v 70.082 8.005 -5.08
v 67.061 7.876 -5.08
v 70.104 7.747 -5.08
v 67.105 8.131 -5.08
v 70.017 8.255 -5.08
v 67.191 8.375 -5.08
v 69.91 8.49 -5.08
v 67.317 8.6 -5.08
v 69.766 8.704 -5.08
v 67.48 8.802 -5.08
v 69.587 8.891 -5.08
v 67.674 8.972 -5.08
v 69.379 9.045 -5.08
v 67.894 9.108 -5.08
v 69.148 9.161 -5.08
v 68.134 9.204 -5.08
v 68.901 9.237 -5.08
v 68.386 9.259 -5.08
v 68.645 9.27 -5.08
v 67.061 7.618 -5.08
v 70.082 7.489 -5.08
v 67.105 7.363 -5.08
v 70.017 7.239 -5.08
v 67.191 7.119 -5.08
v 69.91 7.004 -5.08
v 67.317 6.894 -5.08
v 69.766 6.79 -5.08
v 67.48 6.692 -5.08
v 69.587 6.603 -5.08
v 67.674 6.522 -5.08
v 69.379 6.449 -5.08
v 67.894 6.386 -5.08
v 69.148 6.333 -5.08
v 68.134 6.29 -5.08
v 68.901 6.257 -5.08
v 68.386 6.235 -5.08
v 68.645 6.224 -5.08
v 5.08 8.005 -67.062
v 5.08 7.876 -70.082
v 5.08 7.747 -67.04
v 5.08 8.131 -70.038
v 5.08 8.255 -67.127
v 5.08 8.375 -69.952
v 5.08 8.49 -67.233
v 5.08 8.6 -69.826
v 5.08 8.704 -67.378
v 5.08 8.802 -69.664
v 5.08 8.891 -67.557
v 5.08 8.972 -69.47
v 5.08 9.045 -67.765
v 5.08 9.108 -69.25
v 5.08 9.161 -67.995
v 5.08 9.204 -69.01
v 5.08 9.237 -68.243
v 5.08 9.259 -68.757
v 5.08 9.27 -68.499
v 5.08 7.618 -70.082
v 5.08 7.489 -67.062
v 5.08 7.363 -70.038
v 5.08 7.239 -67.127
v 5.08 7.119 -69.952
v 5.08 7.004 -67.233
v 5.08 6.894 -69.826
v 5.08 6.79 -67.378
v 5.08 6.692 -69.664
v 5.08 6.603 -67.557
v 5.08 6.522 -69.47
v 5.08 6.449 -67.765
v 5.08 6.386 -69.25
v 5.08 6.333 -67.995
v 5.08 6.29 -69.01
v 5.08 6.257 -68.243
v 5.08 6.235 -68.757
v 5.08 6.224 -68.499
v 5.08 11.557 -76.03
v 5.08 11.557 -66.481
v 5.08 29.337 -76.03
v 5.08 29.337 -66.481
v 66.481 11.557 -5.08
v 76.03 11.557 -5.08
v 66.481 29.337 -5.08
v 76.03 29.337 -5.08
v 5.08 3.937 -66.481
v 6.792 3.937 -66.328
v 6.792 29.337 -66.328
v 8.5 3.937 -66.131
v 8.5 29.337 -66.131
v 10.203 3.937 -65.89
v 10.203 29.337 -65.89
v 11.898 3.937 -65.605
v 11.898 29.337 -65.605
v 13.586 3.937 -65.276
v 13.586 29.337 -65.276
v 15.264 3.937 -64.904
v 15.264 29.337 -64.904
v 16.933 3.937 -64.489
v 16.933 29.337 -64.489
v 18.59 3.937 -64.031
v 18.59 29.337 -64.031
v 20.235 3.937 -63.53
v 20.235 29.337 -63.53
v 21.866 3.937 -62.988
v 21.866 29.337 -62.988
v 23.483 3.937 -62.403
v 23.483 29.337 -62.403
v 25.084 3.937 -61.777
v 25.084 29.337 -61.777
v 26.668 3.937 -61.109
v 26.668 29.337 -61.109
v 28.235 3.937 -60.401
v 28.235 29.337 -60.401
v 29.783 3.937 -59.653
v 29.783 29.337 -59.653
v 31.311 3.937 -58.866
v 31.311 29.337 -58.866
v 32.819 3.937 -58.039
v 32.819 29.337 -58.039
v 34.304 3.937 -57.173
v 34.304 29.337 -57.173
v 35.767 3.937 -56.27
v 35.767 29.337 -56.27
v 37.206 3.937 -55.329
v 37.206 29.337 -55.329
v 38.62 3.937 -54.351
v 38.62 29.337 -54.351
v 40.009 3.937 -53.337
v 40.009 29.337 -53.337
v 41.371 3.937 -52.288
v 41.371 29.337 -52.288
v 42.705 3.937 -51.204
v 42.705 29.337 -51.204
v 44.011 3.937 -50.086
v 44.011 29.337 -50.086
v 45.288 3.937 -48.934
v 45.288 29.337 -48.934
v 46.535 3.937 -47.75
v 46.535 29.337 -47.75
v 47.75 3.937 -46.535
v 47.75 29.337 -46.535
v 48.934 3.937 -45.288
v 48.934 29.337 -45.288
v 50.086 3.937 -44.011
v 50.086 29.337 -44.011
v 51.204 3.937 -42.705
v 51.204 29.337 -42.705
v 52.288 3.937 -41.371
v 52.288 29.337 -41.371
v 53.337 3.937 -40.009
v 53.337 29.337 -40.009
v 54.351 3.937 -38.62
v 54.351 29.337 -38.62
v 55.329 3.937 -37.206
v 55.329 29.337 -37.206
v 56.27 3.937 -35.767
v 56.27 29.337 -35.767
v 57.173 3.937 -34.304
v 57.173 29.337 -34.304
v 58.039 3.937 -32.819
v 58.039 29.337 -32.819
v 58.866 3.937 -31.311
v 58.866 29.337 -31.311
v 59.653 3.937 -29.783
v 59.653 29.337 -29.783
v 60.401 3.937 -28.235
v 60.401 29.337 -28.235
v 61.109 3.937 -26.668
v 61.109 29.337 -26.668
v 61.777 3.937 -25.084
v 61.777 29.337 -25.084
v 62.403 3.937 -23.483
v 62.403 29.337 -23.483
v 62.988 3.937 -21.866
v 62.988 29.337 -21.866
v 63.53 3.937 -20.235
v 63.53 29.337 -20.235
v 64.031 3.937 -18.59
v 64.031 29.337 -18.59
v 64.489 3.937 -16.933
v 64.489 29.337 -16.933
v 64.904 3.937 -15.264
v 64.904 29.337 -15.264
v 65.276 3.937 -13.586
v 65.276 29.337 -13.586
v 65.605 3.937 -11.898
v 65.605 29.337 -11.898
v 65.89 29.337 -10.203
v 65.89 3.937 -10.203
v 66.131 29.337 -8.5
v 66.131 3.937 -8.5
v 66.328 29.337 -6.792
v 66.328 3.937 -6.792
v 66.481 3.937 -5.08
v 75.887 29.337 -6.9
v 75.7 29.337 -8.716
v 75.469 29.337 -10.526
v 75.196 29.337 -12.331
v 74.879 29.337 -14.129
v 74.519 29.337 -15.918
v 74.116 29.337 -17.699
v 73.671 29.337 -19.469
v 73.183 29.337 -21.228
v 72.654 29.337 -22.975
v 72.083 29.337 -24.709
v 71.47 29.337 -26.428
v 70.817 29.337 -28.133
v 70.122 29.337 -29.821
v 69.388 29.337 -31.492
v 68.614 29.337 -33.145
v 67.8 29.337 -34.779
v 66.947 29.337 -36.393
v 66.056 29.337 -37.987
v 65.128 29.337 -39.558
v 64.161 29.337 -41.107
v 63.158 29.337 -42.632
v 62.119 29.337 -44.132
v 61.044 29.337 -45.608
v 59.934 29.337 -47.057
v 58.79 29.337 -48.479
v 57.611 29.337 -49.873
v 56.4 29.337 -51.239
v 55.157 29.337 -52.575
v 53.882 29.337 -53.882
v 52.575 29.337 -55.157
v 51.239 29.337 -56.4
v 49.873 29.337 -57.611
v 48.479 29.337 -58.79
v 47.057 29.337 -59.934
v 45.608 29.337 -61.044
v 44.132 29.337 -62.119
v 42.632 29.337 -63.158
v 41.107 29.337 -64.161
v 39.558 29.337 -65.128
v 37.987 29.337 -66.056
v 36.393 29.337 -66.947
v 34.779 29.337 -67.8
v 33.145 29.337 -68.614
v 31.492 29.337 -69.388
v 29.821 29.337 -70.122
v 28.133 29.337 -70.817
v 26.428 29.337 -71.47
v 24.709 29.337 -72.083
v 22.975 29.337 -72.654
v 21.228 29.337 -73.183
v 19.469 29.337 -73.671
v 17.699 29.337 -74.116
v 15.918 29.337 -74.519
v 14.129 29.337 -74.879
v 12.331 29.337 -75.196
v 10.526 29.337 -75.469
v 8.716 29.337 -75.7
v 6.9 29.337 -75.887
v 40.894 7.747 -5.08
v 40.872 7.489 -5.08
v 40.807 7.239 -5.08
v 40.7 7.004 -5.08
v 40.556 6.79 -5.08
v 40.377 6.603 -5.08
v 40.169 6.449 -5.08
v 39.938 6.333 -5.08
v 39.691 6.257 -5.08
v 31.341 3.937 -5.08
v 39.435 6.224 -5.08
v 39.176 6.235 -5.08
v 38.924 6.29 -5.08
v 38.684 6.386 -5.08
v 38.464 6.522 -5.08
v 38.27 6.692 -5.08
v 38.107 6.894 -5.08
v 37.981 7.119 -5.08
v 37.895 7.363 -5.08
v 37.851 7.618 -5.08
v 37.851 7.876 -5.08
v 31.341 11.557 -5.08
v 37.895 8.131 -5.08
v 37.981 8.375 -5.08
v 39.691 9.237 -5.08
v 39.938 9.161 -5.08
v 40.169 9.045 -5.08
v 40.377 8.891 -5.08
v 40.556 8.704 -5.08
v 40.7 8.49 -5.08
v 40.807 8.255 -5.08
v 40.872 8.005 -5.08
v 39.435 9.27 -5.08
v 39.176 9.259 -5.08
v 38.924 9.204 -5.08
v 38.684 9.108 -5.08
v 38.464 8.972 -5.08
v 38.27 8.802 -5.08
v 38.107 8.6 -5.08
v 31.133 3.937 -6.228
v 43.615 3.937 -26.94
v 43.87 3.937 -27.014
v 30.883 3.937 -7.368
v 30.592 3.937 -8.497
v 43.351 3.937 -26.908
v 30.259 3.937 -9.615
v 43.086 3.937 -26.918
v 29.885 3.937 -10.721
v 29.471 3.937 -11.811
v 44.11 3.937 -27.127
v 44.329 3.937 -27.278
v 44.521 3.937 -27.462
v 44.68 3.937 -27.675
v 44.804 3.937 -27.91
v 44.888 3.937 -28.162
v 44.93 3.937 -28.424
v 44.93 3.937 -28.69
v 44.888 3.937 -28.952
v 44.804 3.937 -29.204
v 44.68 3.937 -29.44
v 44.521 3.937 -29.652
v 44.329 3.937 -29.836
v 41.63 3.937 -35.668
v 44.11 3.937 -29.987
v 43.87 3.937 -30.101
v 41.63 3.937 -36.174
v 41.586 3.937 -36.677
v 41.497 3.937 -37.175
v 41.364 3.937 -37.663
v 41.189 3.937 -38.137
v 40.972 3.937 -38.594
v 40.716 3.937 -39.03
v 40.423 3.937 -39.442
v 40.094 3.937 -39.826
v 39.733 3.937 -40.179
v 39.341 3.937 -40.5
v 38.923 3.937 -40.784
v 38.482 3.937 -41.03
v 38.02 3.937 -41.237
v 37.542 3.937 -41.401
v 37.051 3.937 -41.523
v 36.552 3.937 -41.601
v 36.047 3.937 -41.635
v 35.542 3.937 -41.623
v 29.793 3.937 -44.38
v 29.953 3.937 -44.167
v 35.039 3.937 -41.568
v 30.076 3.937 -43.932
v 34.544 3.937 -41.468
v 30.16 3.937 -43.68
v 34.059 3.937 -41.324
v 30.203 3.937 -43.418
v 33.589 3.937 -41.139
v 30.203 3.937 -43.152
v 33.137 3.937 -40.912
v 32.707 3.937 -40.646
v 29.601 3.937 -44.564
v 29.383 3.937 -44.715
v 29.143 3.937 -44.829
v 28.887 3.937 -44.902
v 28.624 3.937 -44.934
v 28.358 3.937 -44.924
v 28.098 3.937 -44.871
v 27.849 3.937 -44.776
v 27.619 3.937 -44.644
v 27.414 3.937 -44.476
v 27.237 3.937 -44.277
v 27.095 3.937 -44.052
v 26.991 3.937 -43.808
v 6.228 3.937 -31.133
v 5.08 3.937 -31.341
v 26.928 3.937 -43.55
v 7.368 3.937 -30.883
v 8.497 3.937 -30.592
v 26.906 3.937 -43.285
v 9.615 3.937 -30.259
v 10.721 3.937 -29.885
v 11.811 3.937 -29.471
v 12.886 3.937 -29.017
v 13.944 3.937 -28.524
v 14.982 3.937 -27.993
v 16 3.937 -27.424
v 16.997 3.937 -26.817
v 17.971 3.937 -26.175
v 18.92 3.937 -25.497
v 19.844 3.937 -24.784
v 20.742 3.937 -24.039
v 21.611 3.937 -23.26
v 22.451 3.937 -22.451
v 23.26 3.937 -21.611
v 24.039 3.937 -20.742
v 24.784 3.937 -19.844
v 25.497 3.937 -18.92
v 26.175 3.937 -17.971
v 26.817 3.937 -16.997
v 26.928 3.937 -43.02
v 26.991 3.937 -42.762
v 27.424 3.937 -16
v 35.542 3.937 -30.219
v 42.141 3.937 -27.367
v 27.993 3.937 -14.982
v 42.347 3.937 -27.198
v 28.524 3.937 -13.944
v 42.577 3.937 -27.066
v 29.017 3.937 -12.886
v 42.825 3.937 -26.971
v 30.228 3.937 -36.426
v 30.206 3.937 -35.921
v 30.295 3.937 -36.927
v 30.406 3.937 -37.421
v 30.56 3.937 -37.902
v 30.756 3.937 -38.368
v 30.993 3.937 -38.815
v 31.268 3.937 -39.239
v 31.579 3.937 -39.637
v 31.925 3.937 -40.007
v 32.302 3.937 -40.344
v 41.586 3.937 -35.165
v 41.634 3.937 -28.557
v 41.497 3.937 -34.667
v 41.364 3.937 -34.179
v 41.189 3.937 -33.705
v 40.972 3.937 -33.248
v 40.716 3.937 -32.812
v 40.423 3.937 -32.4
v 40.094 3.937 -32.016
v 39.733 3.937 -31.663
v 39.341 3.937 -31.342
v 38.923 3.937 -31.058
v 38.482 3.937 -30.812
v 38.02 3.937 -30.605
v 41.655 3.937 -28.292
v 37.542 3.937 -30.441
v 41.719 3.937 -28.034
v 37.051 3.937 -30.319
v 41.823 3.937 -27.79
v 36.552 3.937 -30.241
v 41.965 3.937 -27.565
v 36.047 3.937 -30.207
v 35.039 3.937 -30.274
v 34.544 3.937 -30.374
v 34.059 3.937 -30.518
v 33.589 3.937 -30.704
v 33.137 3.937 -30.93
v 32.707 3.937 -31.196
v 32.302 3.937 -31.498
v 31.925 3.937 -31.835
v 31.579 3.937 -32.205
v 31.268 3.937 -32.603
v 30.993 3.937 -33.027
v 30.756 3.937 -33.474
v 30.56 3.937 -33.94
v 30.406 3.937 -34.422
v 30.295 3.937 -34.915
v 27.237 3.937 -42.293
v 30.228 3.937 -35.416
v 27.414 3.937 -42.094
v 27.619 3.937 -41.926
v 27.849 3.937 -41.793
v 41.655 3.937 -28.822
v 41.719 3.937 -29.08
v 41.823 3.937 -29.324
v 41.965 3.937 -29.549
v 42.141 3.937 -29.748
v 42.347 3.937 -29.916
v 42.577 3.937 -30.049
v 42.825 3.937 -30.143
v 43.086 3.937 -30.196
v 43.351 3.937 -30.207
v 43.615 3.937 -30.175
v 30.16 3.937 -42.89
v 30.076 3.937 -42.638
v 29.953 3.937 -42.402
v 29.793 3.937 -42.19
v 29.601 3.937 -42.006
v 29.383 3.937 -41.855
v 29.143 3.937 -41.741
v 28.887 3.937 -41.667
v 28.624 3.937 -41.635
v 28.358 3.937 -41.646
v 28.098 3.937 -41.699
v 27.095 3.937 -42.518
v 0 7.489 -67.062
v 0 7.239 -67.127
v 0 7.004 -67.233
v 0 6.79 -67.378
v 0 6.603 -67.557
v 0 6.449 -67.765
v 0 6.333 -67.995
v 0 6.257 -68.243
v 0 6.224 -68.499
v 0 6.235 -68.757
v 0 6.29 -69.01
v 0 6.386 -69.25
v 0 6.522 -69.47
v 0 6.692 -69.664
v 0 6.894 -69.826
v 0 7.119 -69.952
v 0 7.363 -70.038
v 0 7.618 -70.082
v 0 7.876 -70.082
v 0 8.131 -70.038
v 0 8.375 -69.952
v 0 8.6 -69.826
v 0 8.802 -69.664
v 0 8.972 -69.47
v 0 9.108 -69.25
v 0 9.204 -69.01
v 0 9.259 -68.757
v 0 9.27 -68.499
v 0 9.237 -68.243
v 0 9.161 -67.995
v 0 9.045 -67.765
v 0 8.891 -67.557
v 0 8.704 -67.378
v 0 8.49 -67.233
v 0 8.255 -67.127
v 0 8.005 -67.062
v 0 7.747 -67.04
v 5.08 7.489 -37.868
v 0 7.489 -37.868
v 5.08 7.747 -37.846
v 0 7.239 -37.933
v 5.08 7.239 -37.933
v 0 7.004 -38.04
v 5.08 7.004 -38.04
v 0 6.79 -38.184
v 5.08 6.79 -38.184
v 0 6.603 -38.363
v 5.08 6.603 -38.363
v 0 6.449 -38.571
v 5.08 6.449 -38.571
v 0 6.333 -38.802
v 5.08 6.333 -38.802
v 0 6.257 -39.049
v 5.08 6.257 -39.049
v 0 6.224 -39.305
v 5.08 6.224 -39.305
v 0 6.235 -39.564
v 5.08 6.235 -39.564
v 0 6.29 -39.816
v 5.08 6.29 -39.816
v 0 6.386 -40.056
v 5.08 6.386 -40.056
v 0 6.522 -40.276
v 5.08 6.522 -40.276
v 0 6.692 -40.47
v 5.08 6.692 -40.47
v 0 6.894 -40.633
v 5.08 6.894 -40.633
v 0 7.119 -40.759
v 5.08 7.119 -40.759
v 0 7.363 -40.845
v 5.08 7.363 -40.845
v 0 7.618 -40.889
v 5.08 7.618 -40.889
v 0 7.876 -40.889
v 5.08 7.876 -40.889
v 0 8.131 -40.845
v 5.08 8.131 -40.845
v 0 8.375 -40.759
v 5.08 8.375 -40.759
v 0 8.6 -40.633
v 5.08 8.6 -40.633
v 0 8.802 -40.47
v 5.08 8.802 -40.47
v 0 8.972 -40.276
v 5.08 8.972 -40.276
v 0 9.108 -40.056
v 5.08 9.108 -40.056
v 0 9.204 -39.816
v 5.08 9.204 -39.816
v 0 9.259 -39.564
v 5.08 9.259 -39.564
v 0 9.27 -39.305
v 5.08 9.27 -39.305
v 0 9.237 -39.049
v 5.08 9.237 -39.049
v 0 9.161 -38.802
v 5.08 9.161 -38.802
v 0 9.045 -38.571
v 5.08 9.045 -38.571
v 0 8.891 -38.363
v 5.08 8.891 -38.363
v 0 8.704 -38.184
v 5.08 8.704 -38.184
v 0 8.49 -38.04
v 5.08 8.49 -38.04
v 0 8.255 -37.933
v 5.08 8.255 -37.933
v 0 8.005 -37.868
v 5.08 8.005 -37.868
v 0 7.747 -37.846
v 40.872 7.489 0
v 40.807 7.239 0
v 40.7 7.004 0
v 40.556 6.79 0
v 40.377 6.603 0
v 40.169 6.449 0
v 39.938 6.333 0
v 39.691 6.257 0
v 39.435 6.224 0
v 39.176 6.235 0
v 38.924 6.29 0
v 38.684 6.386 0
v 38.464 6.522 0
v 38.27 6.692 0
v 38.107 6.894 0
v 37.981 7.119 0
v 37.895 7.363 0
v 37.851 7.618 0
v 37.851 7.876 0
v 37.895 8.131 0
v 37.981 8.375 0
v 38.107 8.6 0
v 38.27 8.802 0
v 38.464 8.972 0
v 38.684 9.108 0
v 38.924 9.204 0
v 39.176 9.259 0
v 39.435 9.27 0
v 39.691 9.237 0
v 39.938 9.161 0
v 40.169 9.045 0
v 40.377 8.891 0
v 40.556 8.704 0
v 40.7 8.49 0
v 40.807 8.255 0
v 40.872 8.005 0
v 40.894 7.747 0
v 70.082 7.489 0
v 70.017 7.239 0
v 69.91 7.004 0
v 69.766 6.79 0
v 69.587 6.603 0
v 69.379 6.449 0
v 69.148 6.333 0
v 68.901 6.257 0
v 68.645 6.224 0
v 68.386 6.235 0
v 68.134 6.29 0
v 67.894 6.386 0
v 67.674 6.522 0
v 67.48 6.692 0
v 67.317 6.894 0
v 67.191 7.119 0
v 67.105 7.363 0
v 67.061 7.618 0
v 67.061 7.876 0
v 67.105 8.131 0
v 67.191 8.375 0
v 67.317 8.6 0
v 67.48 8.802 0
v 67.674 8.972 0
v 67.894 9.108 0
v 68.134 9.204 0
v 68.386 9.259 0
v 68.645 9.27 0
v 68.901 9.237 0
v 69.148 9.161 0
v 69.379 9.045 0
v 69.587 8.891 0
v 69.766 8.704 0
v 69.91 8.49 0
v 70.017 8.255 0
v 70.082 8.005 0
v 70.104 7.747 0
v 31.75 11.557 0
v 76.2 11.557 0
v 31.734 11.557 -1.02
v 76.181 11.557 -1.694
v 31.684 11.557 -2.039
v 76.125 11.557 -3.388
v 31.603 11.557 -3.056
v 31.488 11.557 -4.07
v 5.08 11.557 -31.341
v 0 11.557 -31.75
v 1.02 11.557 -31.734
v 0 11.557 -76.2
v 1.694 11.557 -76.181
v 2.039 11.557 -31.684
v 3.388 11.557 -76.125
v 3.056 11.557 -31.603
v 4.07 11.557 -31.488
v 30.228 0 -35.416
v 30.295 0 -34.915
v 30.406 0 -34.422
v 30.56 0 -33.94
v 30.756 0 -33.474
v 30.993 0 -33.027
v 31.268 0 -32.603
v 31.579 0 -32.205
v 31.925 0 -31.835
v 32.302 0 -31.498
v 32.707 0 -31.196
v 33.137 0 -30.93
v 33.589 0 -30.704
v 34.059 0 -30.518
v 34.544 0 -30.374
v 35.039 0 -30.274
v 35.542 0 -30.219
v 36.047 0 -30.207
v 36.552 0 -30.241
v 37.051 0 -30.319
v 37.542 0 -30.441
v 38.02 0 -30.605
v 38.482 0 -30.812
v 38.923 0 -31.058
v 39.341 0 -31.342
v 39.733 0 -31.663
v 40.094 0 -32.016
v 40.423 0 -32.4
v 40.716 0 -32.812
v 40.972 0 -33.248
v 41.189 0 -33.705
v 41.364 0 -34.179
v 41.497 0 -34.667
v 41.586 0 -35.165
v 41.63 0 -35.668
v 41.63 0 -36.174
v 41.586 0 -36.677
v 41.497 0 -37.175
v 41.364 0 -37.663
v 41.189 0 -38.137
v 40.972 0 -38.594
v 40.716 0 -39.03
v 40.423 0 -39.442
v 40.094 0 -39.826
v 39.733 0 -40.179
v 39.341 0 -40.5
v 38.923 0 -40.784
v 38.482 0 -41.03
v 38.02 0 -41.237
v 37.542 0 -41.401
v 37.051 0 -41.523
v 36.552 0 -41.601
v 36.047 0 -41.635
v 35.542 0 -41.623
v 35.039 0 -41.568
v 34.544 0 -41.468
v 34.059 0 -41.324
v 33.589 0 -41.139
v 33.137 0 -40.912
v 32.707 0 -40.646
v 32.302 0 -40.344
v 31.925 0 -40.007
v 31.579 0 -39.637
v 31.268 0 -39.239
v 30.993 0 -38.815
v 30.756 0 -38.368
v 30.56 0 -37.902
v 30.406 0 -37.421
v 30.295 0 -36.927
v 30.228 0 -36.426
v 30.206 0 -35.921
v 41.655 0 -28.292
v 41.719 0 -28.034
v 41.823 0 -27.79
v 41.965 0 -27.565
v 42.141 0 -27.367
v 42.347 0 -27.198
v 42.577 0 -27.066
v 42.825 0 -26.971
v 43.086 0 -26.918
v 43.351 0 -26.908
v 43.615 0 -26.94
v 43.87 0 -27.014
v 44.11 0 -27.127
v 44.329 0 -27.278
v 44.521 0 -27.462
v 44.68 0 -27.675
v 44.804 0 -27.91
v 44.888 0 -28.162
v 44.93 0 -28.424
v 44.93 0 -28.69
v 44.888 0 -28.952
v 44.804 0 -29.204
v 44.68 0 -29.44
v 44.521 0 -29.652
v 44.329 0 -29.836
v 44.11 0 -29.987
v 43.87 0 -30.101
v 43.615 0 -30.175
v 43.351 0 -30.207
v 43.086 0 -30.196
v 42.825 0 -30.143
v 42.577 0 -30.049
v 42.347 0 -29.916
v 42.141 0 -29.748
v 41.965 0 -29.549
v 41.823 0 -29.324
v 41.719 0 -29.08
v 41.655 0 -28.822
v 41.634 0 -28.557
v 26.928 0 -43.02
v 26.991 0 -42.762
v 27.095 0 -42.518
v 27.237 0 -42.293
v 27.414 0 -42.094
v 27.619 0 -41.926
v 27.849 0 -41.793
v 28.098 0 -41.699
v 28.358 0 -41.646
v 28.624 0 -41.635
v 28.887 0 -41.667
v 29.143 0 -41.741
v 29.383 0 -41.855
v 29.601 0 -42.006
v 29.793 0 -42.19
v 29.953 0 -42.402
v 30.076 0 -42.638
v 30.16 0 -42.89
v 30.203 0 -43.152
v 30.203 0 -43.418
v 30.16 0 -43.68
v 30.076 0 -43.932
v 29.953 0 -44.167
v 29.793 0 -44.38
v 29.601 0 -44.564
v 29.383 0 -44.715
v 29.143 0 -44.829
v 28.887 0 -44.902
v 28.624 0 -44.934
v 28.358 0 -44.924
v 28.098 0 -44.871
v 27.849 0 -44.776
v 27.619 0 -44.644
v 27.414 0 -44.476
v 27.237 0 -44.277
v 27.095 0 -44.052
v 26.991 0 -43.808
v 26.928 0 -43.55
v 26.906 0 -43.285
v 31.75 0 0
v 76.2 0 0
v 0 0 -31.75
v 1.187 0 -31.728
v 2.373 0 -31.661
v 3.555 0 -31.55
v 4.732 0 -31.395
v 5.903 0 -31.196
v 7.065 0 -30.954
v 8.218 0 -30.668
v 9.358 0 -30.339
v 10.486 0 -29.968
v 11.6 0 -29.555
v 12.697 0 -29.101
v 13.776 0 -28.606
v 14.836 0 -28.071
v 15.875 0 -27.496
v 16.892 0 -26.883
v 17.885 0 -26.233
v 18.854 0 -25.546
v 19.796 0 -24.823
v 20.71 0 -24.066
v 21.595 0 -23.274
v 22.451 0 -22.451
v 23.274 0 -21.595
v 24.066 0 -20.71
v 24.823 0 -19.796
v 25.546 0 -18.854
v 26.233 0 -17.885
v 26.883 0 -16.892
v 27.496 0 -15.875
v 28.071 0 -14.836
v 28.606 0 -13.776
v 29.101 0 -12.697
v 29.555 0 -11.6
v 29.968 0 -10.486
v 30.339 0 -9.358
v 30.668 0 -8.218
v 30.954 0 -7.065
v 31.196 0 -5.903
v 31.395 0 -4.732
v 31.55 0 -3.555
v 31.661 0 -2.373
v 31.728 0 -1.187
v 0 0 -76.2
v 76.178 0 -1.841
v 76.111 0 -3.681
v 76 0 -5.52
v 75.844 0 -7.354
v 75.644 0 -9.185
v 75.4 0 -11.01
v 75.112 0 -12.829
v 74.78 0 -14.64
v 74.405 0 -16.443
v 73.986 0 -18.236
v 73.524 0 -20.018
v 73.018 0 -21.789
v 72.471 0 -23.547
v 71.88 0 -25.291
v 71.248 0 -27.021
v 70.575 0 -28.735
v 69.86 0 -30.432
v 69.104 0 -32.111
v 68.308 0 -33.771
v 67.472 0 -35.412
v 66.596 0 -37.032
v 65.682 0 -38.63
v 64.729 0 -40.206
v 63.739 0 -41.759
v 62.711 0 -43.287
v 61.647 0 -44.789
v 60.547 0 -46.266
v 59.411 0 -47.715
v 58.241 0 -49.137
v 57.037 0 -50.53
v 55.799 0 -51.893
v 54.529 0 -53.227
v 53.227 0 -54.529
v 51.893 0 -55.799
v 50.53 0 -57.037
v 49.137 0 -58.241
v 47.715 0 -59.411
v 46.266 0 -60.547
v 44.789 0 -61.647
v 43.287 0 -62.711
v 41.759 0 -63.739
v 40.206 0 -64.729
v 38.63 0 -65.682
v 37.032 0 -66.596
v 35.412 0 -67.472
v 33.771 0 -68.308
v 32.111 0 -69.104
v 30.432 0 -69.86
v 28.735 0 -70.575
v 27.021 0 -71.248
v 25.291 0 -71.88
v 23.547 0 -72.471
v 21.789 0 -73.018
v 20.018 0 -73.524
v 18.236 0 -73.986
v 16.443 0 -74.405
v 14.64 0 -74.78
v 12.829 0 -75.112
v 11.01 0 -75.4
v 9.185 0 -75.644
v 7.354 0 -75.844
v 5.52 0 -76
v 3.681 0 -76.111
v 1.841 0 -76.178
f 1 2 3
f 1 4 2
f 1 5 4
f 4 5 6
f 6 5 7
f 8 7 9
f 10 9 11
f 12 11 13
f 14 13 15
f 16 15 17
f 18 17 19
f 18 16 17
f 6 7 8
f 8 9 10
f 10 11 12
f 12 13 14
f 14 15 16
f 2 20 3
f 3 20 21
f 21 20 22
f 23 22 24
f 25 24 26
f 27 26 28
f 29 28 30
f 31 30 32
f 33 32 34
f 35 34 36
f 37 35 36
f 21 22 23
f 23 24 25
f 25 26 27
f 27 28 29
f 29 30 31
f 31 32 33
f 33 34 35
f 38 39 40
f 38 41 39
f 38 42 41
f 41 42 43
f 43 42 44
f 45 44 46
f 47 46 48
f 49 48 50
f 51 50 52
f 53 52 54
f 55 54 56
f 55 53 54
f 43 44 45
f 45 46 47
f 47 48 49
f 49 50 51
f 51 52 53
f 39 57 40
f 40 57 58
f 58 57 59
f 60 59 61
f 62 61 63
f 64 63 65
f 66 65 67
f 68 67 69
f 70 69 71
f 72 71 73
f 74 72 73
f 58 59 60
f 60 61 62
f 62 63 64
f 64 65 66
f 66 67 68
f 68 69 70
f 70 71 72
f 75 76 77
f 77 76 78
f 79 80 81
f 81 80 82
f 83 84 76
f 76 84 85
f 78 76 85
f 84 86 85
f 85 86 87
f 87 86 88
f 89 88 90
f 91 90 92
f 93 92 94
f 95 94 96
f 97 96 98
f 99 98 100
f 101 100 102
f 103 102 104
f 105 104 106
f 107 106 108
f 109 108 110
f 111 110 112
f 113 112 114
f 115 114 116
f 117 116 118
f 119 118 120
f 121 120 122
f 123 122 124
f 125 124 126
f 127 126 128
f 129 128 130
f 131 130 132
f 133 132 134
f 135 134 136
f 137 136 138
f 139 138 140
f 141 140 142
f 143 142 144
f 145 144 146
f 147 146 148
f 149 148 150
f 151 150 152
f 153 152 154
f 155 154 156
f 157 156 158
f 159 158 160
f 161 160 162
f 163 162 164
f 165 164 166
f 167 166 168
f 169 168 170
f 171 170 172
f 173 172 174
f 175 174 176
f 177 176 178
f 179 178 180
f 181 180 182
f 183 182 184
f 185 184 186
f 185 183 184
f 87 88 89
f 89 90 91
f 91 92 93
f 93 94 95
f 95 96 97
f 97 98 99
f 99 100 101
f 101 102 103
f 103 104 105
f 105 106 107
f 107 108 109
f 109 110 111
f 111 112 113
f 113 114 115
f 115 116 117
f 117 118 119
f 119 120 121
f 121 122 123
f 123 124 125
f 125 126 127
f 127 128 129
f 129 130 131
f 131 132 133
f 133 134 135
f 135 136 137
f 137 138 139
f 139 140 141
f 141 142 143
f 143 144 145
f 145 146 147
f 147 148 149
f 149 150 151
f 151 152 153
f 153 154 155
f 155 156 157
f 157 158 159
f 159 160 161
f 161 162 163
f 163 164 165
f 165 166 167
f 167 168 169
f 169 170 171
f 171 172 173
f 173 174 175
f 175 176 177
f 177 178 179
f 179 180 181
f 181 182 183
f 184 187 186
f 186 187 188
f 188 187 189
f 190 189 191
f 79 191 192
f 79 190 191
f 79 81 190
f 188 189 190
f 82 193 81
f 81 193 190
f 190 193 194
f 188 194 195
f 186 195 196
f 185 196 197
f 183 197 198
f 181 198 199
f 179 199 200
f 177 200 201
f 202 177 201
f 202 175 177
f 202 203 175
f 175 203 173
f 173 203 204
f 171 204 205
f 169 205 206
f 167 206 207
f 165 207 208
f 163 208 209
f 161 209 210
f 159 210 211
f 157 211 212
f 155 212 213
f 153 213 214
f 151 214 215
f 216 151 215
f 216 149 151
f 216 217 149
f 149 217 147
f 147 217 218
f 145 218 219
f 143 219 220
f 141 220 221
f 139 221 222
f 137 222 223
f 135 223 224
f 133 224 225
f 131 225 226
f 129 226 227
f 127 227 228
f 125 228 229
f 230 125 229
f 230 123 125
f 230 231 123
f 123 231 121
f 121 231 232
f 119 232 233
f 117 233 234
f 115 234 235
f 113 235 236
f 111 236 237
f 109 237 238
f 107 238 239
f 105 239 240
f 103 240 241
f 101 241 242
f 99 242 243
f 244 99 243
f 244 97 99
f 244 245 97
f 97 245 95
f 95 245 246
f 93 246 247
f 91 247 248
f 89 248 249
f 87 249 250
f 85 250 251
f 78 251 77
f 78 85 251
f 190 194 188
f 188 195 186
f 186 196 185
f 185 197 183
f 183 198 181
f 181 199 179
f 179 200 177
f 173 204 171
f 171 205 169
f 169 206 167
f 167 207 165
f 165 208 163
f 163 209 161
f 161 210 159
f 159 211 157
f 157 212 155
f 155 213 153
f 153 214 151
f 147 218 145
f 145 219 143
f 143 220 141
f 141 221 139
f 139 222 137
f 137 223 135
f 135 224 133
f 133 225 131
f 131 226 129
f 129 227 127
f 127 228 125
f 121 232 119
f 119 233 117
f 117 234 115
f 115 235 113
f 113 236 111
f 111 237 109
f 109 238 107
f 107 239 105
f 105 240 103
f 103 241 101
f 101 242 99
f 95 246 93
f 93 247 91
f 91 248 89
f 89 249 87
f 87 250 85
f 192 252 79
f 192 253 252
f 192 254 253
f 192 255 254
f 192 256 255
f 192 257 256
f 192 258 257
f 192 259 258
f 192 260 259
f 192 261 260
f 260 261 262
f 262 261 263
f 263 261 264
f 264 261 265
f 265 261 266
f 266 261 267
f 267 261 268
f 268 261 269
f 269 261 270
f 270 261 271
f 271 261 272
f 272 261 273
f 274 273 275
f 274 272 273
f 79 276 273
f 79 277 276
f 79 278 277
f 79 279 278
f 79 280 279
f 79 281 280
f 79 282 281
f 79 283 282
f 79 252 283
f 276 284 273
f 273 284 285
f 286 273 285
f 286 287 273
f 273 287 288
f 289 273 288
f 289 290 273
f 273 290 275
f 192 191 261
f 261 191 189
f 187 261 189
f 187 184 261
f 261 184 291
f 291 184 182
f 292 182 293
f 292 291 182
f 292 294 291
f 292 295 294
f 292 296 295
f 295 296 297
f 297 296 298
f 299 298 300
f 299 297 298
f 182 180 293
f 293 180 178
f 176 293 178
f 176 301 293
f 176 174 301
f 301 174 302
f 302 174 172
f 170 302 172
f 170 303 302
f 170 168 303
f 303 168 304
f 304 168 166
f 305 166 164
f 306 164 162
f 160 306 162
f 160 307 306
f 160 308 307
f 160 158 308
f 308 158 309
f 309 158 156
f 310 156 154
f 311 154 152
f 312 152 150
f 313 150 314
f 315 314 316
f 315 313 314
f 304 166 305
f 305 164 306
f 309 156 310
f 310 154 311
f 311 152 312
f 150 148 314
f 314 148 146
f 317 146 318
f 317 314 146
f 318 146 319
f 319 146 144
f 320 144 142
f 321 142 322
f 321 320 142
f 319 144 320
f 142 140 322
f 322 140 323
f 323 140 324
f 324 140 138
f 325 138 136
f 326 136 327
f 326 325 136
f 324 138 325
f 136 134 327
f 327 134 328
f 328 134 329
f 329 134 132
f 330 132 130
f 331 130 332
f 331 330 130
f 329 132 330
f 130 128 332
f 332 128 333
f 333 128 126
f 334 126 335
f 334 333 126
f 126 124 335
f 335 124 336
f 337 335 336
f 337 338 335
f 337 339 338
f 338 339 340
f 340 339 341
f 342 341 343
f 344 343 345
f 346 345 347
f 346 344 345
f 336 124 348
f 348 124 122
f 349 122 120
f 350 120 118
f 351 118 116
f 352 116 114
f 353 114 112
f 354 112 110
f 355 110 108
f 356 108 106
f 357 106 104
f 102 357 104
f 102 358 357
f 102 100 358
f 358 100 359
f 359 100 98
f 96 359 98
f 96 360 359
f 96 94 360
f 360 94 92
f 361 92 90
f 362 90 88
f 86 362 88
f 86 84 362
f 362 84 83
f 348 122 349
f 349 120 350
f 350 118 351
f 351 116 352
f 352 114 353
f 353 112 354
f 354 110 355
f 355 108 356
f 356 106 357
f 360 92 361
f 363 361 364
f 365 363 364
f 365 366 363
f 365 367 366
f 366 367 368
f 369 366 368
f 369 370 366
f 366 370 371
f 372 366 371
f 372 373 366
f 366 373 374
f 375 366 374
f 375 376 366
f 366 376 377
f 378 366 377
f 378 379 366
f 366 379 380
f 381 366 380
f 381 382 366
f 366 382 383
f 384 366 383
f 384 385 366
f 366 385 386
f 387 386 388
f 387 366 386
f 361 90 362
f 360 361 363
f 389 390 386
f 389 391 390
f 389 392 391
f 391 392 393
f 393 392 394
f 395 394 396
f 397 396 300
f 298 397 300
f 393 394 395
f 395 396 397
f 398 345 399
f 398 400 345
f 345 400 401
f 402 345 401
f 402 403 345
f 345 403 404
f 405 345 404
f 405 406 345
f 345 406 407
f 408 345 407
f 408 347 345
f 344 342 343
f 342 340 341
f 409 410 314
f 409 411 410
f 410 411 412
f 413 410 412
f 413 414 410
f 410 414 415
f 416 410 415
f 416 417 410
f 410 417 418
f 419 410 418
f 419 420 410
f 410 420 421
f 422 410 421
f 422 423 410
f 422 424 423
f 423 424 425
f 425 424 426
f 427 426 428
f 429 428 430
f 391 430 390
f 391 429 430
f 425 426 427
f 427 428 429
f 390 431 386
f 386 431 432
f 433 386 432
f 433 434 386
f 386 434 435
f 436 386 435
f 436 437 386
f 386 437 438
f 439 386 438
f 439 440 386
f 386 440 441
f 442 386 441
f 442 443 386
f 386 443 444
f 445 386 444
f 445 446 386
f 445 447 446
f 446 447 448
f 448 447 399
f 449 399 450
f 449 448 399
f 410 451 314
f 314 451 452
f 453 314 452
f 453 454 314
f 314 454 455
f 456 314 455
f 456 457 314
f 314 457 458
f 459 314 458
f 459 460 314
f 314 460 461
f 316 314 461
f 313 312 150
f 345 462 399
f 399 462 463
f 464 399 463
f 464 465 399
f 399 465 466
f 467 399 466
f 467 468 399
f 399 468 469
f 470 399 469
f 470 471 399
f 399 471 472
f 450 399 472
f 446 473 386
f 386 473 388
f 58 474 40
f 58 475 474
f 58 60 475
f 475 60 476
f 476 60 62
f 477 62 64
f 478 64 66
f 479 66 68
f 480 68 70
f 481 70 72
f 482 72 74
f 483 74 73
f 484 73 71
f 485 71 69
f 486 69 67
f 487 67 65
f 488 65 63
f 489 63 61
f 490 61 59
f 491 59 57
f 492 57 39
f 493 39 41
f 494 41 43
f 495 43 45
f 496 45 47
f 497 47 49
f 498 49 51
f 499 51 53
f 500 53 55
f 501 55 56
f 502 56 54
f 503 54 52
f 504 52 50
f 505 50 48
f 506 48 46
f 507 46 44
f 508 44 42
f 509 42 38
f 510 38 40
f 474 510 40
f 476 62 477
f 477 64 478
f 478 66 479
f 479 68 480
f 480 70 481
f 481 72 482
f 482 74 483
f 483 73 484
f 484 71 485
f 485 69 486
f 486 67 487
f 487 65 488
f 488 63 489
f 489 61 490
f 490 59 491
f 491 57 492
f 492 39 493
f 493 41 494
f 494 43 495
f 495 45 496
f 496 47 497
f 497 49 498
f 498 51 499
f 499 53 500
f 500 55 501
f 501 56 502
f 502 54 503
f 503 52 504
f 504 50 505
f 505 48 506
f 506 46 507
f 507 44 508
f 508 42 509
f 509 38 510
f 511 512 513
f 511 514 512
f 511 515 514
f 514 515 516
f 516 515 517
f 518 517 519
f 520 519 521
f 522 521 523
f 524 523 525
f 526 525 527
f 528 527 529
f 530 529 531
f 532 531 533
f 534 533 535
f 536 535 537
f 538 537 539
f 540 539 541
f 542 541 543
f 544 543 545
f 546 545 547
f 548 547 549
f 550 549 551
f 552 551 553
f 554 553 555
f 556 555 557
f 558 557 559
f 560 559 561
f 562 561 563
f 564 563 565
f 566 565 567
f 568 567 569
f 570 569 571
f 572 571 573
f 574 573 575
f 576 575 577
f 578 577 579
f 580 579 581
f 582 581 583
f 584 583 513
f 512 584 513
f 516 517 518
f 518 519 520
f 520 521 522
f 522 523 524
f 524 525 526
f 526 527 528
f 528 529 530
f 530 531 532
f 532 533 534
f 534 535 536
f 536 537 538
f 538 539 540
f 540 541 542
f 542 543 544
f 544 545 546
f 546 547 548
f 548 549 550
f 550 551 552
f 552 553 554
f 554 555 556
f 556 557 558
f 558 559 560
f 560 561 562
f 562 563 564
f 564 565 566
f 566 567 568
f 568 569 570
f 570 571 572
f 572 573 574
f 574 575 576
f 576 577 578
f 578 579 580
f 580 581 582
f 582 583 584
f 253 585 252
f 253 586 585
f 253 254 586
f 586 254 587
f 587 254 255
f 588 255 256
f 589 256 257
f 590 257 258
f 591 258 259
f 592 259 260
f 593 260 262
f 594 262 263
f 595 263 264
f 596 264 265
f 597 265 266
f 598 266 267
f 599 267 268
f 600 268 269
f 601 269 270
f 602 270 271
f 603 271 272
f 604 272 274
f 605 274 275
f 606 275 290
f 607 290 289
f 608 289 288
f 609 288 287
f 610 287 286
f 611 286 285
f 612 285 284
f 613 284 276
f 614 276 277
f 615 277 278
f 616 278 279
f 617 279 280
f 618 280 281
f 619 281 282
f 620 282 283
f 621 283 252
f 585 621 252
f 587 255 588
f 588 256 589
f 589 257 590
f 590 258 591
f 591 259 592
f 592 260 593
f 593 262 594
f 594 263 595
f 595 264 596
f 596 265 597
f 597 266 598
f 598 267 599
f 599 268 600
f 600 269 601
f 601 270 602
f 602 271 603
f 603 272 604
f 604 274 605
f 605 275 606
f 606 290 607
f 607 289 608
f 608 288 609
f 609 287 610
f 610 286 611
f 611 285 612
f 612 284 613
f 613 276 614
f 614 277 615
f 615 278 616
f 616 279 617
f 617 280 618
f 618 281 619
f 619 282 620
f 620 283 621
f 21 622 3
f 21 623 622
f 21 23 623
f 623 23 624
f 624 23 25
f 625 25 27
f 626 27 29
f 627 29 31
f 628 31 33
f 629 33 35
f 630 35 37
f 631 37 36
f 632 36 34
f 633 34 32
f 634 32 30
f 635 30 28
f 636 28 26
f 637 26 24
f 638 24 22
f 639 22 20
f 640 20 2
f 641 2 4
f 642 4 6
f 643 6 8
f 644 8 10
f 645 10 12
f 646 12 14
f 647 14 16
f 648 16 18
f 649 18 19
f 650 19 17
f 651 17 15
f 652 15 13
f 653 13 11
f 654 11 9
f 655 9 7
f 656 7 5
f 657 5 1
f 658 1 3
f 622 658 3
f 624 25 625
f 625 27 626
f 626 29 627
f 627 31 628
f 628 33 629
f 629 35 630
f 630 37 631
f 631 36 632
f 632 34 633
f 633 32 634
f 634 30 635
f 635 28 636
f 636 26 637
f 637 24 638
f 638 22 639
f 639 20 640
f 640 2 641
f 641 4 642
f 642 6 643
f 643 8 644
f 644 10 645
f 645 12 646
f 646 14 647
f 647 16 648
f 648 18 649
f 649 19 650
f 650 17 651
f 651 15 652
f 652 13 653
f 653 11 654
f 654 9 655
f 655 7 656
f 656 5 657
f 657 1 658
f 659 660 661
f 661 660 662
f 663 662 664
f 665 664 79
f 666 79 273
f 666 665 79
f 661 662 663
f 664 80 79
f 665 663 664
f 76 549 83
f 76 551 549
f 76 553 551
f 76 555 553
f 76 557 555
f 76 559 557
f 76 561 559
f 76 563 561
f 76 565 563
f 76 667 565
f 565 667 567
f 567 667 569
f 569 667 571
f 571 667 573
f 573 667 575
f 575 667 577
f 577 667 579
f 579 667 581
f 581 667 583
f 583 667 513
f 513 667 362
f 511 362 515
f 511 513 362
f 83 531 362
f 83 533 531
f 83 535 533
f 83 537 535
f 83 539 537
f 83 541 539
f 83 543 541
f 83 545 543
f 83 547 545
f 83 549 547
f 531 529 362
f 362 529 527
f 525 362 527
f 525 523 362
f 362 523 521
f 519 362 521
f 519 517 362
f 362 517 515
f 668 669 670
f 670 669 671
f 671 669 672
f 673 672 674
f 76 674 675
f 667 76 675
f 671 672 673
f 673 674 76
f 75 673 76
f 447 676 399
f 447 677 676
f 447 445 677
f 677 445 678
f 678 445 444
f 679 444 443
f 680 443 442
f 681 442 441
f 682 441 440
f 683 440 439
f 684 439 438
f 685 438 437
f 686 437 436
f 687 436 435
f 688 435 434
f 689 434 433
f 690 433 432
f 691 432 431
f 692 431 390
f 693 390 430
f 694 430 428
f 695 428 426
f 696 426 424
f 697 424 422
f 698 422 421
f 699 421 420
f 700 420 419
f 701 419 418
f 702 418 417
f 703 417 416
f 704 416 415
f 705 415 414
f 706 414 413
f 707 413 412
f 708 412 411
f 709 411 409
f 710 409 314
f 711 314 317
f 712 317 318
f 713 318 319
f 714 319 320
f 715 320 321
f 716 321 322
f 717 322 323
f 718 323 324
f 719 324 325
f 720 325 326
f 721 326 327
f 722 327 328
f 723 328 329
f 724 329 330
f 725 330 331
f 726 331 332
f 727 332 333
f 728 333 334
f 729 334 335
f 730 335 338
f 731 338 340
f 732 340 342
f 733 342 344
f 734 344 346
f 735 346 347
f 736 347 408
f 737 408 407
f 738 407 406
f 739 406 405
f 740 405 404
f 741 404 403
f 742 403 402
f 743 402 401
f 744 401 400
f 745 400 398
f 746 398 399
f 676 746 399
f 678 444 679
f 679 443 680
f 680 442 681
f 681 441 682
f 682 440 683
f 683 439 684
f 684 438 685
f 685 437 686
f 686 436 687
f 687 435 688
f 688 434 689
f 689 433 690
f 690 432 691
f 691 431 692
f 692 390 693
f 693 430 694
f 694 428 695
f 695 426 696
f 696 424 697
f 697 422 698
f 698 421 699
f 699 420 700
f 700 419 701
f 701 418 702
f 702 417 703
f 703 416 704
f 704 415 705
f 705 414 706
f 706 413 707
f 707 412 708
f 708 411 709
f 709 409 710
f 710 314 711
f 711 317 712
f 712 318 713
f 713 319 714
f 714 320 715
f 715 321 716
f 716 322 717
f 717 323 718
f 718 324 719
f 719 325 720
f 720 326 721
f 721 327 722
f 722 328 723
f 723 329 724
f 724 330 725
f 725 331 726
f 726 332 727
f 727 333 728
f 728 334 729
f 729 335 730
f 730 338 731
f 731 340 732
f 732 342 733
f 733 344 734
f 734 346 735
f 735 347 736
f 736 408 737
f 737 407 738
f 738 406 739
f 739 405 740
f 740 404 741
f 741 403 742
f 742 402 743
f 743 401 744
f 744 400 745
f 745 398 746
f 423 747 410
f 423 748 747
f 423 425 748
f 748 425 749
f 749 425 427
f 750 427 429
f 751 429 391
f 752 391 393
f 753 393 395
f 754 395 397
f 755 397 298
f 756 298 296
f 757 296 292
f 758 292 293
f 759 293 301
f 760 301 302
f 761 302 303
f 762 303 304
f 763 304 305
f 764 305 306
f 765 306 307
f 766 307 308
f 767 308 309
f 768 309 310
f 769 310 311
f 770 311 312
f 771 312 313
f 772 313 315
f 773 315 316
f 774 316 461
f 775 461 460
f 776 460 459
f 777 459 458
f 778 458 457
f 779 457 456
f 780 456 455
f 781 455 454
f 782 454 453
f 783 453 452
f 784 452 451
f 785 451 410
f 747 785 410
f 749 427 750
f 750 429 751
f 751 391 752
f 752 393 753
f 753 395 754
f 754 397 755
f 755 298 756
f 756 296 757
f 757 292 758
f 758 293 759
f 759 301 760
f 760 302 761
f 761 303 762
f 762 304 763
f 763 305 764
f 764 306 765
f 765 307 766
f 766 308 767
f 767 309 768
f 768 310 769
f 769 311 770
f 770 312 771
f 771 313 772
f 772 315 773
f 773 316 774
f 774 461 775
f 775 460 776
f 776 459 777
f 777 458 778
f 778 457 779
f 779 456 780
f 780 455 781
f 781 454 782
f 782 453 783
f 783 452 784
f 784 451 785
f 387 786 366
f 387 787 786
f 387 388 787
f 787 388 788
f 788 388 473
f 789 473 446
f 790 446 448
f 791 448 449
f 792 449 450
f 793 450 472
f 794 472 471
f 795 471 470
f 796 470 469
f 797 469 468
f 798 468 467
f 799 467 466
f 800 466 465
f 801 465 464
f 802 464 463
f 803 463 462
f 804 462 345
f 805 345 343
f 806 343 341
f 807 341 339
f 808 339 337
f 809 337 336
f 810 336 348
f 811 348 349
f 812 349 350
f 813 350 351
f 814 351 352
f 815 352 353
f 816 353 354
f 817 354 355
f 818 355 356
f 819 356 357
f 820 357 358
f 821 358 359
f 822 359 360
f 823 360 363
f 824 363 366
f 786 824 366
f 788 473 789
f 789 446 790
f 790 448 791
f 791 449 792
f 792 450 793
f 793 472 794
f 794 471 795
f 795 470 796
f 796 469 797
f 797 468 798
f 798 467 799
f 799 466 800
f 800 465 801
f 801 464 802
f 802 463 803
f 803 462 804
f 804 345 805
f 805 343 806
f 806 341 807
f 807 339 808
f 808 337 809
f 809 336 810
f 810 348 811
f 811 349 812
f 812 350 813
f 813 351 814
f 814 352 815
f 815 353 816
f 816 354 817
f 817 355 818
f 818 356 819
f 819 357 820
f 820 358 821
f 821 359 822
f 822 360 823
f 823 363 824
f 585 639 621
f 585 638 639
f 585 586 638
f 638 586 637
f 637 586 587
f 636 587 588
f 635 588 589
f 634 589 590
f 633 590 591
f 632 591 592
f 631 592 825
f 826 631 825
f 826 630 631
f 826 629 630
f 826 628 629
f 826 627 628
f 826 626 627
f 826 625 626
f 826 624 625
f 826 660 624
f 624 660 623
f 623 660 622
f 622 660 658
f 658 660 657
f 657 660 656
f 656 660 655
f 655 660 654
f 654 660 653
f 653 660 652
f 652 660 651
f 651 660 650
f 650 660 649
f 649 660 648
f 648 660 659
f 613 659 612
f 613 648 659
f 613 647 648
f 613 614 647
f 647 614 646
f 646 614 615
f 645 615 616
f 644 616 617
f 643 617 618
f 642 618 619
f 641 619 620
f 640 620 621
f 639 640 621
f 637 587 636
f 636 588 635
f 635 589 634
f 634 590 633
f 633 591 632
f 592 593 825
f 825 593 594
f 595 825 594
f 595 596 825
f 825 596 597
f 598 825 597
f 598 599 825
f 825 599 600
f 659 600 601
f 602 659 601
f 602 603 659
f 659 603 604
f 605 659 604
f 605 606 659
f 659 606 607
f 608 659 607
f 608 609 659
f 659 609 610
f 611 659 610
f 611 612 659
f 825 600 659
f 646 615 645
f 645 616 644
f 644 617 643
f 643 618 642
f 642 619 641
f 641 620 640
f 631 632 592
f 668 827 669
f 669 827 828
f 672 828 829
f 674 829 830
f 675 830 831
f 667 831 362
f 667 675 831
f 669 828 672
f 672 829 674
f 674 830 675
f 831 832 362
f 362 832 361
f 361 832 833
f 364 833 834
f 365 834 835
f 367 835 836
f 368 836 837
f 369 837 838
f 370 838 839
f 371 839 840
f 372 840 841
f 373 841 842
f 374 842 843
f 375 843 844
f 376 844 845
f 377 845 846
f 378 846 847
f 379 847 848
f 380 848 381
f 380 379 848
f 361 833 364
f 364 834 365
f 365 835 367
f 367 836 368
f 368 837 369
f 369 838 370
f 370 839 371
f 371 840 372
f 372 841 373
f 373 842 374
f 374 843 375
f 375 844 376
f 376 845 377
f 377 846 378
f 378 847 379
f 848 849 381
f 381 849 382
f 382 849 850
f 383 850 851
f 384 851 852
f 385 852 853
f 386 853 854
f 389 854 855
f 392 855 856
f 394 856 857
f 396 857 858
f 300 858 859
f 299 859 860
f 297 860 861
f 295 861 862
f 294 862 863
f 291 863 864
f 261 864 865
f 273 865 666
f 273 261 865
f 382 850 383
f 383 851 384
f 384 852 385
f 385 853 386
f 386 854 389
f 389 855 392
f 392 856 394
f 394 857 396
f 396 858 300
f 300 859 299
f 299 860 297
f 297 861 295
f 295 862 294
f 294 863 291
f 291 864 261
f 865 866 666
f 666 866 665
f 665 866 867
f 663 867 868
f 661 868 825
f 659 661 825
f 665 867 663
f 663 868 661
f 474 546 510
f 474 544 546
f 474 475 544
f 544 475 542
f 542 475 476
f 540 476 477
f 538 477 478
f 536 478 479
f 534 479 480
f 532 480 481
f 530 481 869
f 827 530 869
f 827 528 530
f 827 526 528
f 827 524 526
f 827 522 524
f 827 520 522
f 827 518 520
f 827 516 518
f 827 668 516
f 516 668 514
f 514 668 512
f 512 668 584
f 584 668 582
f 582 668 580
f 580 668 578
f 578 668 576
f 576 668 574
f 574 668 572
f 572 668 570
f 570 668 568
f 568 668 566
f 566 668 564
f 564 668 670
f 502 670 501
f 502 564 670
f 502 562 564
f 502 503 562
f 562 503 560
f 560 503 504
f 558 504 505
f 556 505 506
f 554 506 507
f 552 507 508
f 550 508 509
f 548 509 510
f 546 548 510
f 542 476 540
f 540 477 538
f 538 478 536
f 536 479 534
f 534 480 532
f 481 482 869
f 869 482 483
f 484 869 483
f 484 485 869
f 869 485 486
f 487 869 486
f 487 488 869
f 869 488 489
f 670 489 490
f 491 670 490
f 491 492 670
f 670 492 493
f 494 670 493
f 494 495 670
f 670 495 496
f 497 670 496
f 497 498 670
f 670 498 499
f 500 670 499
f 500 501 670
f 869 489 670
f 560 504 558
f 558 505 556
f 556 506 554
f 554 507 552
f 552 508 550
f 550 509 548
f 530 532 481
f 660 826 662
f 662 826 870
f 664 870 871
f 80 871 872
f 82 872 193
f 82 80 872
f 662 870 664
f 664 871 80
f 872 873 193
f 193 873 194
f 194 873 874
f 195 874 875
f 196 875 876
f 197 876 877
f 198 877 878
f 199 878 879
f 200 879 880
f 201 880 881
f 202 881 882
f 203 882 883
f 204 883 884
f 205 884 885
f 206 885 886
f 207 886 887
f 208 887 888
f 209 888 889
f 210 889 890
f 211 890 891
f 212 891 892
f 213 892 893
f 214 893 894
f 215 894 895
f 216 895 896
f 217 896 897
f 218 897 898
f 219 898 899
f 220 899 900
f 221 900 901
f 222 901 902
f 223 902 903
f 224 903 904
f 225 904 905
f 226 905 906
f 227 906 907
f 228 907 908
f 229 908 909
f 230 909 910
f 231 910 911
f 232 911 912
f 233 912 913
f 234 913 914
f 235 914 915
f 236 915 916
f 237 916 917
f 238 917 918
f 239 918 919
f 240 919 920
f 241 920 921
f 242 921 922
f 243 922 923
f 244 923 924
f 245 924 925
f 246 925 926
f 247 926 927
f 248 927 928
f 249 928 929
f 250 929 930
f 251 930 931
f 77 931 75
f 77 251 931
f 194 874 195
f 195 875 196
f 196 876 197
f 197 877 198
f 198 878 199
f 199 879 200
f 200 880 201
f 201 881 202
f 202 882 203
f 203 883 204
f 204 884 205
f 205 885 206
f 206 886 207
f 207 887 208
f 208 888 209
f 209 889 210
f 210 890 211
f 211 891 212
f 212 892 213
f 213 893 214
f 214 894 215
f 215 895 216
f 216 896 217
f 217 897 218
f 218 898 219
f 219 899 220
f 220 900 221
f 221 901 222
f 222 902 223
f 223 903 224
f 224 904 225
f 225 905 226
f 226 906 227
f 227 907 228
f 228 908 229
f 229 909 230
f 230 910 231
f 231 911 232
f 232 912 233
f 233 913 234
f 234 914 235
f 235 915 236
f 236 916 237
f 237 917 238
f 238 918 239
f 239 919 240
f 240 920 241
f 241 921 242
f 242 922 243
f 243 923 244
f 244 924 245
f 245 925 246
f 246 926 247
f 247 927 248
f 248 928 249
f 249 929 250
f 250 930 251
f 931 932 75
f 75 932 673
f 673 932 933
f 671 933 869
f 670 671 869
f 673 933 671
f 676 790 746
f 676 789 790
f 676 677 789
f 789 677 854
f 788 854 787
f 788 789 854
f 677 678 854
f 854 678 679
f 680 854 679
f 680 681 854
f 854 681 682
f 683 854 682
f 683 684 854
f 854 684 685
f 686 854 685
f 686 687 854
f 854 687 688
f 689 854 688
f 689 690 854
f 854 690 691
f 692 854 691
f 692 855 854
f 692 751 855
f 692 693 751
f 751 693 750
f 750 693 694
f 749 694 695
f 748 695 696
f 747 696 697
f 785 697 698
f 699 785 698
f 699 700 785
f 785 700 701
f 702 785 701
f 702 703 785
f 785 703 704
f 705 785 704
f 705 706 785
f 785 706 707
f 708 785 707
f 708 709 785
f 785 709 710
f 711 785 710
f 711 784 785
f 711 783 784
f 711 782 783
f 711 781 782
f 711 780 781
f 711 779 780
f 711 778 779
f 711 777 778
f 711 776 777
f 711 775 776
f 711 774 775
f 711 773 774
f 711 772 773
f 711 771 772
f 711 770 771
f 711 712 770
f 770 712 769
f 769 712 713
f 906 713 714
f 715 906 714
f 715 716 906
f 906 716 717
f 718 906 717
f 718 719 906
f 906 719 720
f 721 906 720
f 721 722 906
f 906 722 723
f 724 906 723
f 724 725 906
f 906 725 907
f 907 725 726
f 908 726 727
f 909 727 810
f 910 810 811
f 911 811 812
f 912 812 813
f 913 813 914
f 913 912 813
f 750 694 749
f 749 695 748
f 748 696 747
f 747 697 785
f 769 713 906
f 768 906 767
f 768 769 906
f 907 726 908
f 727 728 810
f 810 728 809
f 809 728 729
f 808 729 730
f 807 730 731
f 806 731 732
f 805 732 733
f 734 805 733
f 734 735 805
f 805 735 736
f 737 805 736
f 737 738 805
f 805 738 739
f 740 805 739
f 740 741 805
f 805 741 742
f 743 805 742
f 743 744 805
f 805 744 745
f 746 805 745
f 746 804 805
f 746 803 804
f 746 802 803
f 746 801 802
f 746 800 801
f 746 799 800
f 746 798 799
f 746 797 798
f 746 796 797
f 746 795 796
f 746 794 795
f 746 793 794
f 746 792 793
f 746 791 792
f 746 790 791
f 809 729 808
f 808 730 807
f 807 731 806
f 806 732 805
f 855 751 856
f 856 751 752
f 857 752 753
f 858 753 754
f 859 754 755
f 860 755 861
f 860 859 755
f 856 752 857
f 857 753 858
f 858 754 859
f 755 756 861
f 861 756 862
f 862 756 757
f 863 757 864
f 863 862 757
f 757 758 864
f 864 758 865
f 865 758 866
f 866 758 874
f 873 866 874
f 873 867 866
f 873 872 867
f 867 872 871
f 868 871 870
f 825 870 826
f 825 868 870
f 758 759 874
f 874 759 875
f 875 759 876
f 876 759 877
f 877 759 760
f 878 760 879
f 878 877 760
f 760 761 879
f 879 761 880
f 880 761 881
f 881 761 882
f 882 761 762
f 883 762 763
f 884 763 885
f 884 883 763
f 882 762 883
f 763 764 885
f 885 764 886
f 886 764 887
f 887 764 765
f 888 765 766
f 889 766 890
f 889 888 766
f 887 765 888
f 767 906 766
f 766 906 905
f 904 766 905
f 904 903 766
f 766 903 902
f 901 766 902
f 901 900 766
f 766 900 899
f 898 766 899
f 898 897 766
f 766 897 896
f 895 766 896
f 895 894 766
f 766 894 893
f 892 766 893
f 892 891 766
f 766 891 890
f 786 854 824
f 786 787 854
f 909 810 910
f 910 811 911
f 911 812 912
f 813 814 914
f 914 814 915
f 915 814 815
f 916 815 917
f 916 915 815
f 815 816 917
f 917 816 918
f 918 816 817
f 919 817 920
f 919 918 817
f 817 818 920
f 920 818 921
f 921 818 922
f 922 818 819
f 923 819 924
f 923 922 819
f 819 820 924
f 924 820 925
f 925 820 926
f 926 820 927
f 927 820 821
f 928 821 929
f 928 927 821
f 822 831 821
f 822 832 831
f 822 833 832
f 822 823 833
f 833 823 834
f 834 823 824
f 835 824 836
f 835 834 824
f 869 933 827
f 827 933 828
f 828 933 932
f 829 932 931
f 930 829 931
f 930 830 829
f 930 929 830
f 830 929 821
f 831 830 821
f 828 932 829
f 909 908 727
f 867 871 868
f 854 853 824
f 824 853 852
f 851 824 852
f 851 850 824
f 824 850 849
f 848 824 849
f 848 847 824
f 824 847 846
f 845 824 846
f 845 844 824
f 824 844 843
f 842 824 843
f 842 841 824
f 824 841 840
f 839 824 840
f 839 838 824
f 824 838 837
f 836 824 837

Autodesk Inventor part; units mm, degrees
ref_plane "YZ Plane" through (0, 0, 0) normal (1, 0, 0) x (0, 1, 0)
ref_plane "XZ Plane" through (0, 0, 0) normal (0, 1, 0) x (-1, 0, 0)
ref_plane "XY Plane" through (0, 0, 0) normal (0, 0, 1) x (1, 0, 0)
sketch "Sketch1" plane through (0, 0, 0) normal (0, 1, 0) x (-1, 0, 0)
  arc A0 (-76.2, 0) -> (0, -76.2) centre (0, 0) ccw
  line L0 (-76.2, 0) -> (-31.75, 0)
  line L1 (0, -76.2) -> (0, -31.75)
  arc A1 (-31.75, 0) -> (0, -31.75) centre (0, 0) ccw
  line L2 (0, 0) -> (-35.921, -35.921)
  line L3 (0, 0) -> (50.8, 0) construction
  circle A2 centre (-35.921, -35.921) radius 5.715
  line L4 (-35.921, -35.921) -> (-28.5572, -43.2848)
  line L5 (-35.921, -35.921) -> (-25.507, -35.921) construction
  line L6 (-35.921, -35.921) -> (-43.2848, -28.5572)
  circle A3 centre (-28.5572, -43.2848) radius 1.651
  circle A4 centre (-43.2848, -28.5572) radius 1.651
  dimension "d0" = 152.4
  dimension "d1" = 44.45
  dimension "d2" = 44.45
  dimension "d3" = 50.8
  dimension "d4" = 135
  dimension "d5" = 11.43
  dimension "d6" = 10.414
  dimension "d7" = 45
  dimension "d8" = 10.414
  dimension "d9" = 3.302
  dimension "d10" = 3.302
extrude "Extrusion1" add sketch "Sketch1" along normal blind 3.937
sketch "Sketch4" plane through (0, 3.937, 0) normal (0, 1, 0) x (1, 0, 0)
  circle A0 centre (35.921, 35.921) radius 5.715 projected
  circle A1 centre (43.2848, 28.5572) radius 1.651 projected
  circle A2 centre (28.5572, 43.2848) radius 1.651 projected
  arc A3 (76.2, 0) -> (0, 76.2) centre (0, 0) ccw projected
  line L0 (0, 76.2) -> (0, 31.75) projected
  arc A4 (31.75, 0) -> (0, 31.75) centre (0, 0) ccw projected
  line L1 (31.75, 0) -> (76.2, 0) projected
  line L2 (5.08, 76.0305) -> (5.08, 31.341)
  line L3 (31.341, 5.08) -> (76.0305, 5.08)
  dimension "d15" = 5.08
  dimension "d16" = 5.08
extrude "Extrusion2" add sketch "Sketch4" along normal blind 7.62 contours L1 A4 L3 A3 | L2 A4 L0 A3
sketch "Sketch5" plane through (31.75, 0, 0) normal (0, 0, 1) x (1, 0, 0)
  line L0 (0, 0) -> (0, 11.557) projected
  line L1 (0, 7.747) -> (44.3964, 7.747)
  line L2 (0, 11.557) -> (44.45, 11.557) projected
  circle A0 centre (7.62, 7.747) radius 1.524
  circle A1 centre (36.83, 7.747) radius 1.524
  line L3 (44.45, 0) -> (44.45, 11.557) projected
  point P0 (-31.75, 0)
  dimension "d19" = 3.81
  dimension "d20" = 3.048
  dimension "d21" = 3.048
  dimension "d22" = 7.62
  dimension "d23" = 7.62
extrude "Extrusion3" cut sketch "Sketch5" against normal through all
sketch "Sketch6" plane through (0, 0, -76.2) normal (-1, 0, 0) x (0, 0, 1)
  line L0 (0.0164, 7.747) -> (43.8758, 7.747)
  line L1 (0, 11.557) -> (44.45, 11.557) projected
  circle A0 centre (7.6364, 7.747) radius 1.524
  circle A1 centre (36.83, 7.747) radius 1.524
  line L2 (44.45, 0) -> (44.45, 11.557) projected
  point P0 (76.2, 0)
  dimension "d26" = 3.81
  dimension "d27" = 3.048
  dimension "d28" = 3.048
  dimension "d29" = 7.62
  dimension "d30" = 7.62
extrude "Extrusion4" cut sketch "Sketch6" against normal blind 7.62
sketch "Sketch7" plane through (0, 3.937, 0) normal (0, 1, 0) x (1, 0, 0)
  arc A0 (76.0305, 5.08) -> (5.08, 76.0305) centre (0, 0) ccw projected
  line L0 (5.08, 31.341) -> (5.08, 76.0305) projected
  line L1 (76.0305, 5.08) -> (31.341, 5.08) projected
  arc A1 (66.4812, 5.08) -> (5.08, 66.4812) centre (0, 0) ccw
  dimension "d33" = 133.35
extrude "Extrusion5" add sketch "Sketch7" along normal blind 25.4
properties part number "base_segment"
